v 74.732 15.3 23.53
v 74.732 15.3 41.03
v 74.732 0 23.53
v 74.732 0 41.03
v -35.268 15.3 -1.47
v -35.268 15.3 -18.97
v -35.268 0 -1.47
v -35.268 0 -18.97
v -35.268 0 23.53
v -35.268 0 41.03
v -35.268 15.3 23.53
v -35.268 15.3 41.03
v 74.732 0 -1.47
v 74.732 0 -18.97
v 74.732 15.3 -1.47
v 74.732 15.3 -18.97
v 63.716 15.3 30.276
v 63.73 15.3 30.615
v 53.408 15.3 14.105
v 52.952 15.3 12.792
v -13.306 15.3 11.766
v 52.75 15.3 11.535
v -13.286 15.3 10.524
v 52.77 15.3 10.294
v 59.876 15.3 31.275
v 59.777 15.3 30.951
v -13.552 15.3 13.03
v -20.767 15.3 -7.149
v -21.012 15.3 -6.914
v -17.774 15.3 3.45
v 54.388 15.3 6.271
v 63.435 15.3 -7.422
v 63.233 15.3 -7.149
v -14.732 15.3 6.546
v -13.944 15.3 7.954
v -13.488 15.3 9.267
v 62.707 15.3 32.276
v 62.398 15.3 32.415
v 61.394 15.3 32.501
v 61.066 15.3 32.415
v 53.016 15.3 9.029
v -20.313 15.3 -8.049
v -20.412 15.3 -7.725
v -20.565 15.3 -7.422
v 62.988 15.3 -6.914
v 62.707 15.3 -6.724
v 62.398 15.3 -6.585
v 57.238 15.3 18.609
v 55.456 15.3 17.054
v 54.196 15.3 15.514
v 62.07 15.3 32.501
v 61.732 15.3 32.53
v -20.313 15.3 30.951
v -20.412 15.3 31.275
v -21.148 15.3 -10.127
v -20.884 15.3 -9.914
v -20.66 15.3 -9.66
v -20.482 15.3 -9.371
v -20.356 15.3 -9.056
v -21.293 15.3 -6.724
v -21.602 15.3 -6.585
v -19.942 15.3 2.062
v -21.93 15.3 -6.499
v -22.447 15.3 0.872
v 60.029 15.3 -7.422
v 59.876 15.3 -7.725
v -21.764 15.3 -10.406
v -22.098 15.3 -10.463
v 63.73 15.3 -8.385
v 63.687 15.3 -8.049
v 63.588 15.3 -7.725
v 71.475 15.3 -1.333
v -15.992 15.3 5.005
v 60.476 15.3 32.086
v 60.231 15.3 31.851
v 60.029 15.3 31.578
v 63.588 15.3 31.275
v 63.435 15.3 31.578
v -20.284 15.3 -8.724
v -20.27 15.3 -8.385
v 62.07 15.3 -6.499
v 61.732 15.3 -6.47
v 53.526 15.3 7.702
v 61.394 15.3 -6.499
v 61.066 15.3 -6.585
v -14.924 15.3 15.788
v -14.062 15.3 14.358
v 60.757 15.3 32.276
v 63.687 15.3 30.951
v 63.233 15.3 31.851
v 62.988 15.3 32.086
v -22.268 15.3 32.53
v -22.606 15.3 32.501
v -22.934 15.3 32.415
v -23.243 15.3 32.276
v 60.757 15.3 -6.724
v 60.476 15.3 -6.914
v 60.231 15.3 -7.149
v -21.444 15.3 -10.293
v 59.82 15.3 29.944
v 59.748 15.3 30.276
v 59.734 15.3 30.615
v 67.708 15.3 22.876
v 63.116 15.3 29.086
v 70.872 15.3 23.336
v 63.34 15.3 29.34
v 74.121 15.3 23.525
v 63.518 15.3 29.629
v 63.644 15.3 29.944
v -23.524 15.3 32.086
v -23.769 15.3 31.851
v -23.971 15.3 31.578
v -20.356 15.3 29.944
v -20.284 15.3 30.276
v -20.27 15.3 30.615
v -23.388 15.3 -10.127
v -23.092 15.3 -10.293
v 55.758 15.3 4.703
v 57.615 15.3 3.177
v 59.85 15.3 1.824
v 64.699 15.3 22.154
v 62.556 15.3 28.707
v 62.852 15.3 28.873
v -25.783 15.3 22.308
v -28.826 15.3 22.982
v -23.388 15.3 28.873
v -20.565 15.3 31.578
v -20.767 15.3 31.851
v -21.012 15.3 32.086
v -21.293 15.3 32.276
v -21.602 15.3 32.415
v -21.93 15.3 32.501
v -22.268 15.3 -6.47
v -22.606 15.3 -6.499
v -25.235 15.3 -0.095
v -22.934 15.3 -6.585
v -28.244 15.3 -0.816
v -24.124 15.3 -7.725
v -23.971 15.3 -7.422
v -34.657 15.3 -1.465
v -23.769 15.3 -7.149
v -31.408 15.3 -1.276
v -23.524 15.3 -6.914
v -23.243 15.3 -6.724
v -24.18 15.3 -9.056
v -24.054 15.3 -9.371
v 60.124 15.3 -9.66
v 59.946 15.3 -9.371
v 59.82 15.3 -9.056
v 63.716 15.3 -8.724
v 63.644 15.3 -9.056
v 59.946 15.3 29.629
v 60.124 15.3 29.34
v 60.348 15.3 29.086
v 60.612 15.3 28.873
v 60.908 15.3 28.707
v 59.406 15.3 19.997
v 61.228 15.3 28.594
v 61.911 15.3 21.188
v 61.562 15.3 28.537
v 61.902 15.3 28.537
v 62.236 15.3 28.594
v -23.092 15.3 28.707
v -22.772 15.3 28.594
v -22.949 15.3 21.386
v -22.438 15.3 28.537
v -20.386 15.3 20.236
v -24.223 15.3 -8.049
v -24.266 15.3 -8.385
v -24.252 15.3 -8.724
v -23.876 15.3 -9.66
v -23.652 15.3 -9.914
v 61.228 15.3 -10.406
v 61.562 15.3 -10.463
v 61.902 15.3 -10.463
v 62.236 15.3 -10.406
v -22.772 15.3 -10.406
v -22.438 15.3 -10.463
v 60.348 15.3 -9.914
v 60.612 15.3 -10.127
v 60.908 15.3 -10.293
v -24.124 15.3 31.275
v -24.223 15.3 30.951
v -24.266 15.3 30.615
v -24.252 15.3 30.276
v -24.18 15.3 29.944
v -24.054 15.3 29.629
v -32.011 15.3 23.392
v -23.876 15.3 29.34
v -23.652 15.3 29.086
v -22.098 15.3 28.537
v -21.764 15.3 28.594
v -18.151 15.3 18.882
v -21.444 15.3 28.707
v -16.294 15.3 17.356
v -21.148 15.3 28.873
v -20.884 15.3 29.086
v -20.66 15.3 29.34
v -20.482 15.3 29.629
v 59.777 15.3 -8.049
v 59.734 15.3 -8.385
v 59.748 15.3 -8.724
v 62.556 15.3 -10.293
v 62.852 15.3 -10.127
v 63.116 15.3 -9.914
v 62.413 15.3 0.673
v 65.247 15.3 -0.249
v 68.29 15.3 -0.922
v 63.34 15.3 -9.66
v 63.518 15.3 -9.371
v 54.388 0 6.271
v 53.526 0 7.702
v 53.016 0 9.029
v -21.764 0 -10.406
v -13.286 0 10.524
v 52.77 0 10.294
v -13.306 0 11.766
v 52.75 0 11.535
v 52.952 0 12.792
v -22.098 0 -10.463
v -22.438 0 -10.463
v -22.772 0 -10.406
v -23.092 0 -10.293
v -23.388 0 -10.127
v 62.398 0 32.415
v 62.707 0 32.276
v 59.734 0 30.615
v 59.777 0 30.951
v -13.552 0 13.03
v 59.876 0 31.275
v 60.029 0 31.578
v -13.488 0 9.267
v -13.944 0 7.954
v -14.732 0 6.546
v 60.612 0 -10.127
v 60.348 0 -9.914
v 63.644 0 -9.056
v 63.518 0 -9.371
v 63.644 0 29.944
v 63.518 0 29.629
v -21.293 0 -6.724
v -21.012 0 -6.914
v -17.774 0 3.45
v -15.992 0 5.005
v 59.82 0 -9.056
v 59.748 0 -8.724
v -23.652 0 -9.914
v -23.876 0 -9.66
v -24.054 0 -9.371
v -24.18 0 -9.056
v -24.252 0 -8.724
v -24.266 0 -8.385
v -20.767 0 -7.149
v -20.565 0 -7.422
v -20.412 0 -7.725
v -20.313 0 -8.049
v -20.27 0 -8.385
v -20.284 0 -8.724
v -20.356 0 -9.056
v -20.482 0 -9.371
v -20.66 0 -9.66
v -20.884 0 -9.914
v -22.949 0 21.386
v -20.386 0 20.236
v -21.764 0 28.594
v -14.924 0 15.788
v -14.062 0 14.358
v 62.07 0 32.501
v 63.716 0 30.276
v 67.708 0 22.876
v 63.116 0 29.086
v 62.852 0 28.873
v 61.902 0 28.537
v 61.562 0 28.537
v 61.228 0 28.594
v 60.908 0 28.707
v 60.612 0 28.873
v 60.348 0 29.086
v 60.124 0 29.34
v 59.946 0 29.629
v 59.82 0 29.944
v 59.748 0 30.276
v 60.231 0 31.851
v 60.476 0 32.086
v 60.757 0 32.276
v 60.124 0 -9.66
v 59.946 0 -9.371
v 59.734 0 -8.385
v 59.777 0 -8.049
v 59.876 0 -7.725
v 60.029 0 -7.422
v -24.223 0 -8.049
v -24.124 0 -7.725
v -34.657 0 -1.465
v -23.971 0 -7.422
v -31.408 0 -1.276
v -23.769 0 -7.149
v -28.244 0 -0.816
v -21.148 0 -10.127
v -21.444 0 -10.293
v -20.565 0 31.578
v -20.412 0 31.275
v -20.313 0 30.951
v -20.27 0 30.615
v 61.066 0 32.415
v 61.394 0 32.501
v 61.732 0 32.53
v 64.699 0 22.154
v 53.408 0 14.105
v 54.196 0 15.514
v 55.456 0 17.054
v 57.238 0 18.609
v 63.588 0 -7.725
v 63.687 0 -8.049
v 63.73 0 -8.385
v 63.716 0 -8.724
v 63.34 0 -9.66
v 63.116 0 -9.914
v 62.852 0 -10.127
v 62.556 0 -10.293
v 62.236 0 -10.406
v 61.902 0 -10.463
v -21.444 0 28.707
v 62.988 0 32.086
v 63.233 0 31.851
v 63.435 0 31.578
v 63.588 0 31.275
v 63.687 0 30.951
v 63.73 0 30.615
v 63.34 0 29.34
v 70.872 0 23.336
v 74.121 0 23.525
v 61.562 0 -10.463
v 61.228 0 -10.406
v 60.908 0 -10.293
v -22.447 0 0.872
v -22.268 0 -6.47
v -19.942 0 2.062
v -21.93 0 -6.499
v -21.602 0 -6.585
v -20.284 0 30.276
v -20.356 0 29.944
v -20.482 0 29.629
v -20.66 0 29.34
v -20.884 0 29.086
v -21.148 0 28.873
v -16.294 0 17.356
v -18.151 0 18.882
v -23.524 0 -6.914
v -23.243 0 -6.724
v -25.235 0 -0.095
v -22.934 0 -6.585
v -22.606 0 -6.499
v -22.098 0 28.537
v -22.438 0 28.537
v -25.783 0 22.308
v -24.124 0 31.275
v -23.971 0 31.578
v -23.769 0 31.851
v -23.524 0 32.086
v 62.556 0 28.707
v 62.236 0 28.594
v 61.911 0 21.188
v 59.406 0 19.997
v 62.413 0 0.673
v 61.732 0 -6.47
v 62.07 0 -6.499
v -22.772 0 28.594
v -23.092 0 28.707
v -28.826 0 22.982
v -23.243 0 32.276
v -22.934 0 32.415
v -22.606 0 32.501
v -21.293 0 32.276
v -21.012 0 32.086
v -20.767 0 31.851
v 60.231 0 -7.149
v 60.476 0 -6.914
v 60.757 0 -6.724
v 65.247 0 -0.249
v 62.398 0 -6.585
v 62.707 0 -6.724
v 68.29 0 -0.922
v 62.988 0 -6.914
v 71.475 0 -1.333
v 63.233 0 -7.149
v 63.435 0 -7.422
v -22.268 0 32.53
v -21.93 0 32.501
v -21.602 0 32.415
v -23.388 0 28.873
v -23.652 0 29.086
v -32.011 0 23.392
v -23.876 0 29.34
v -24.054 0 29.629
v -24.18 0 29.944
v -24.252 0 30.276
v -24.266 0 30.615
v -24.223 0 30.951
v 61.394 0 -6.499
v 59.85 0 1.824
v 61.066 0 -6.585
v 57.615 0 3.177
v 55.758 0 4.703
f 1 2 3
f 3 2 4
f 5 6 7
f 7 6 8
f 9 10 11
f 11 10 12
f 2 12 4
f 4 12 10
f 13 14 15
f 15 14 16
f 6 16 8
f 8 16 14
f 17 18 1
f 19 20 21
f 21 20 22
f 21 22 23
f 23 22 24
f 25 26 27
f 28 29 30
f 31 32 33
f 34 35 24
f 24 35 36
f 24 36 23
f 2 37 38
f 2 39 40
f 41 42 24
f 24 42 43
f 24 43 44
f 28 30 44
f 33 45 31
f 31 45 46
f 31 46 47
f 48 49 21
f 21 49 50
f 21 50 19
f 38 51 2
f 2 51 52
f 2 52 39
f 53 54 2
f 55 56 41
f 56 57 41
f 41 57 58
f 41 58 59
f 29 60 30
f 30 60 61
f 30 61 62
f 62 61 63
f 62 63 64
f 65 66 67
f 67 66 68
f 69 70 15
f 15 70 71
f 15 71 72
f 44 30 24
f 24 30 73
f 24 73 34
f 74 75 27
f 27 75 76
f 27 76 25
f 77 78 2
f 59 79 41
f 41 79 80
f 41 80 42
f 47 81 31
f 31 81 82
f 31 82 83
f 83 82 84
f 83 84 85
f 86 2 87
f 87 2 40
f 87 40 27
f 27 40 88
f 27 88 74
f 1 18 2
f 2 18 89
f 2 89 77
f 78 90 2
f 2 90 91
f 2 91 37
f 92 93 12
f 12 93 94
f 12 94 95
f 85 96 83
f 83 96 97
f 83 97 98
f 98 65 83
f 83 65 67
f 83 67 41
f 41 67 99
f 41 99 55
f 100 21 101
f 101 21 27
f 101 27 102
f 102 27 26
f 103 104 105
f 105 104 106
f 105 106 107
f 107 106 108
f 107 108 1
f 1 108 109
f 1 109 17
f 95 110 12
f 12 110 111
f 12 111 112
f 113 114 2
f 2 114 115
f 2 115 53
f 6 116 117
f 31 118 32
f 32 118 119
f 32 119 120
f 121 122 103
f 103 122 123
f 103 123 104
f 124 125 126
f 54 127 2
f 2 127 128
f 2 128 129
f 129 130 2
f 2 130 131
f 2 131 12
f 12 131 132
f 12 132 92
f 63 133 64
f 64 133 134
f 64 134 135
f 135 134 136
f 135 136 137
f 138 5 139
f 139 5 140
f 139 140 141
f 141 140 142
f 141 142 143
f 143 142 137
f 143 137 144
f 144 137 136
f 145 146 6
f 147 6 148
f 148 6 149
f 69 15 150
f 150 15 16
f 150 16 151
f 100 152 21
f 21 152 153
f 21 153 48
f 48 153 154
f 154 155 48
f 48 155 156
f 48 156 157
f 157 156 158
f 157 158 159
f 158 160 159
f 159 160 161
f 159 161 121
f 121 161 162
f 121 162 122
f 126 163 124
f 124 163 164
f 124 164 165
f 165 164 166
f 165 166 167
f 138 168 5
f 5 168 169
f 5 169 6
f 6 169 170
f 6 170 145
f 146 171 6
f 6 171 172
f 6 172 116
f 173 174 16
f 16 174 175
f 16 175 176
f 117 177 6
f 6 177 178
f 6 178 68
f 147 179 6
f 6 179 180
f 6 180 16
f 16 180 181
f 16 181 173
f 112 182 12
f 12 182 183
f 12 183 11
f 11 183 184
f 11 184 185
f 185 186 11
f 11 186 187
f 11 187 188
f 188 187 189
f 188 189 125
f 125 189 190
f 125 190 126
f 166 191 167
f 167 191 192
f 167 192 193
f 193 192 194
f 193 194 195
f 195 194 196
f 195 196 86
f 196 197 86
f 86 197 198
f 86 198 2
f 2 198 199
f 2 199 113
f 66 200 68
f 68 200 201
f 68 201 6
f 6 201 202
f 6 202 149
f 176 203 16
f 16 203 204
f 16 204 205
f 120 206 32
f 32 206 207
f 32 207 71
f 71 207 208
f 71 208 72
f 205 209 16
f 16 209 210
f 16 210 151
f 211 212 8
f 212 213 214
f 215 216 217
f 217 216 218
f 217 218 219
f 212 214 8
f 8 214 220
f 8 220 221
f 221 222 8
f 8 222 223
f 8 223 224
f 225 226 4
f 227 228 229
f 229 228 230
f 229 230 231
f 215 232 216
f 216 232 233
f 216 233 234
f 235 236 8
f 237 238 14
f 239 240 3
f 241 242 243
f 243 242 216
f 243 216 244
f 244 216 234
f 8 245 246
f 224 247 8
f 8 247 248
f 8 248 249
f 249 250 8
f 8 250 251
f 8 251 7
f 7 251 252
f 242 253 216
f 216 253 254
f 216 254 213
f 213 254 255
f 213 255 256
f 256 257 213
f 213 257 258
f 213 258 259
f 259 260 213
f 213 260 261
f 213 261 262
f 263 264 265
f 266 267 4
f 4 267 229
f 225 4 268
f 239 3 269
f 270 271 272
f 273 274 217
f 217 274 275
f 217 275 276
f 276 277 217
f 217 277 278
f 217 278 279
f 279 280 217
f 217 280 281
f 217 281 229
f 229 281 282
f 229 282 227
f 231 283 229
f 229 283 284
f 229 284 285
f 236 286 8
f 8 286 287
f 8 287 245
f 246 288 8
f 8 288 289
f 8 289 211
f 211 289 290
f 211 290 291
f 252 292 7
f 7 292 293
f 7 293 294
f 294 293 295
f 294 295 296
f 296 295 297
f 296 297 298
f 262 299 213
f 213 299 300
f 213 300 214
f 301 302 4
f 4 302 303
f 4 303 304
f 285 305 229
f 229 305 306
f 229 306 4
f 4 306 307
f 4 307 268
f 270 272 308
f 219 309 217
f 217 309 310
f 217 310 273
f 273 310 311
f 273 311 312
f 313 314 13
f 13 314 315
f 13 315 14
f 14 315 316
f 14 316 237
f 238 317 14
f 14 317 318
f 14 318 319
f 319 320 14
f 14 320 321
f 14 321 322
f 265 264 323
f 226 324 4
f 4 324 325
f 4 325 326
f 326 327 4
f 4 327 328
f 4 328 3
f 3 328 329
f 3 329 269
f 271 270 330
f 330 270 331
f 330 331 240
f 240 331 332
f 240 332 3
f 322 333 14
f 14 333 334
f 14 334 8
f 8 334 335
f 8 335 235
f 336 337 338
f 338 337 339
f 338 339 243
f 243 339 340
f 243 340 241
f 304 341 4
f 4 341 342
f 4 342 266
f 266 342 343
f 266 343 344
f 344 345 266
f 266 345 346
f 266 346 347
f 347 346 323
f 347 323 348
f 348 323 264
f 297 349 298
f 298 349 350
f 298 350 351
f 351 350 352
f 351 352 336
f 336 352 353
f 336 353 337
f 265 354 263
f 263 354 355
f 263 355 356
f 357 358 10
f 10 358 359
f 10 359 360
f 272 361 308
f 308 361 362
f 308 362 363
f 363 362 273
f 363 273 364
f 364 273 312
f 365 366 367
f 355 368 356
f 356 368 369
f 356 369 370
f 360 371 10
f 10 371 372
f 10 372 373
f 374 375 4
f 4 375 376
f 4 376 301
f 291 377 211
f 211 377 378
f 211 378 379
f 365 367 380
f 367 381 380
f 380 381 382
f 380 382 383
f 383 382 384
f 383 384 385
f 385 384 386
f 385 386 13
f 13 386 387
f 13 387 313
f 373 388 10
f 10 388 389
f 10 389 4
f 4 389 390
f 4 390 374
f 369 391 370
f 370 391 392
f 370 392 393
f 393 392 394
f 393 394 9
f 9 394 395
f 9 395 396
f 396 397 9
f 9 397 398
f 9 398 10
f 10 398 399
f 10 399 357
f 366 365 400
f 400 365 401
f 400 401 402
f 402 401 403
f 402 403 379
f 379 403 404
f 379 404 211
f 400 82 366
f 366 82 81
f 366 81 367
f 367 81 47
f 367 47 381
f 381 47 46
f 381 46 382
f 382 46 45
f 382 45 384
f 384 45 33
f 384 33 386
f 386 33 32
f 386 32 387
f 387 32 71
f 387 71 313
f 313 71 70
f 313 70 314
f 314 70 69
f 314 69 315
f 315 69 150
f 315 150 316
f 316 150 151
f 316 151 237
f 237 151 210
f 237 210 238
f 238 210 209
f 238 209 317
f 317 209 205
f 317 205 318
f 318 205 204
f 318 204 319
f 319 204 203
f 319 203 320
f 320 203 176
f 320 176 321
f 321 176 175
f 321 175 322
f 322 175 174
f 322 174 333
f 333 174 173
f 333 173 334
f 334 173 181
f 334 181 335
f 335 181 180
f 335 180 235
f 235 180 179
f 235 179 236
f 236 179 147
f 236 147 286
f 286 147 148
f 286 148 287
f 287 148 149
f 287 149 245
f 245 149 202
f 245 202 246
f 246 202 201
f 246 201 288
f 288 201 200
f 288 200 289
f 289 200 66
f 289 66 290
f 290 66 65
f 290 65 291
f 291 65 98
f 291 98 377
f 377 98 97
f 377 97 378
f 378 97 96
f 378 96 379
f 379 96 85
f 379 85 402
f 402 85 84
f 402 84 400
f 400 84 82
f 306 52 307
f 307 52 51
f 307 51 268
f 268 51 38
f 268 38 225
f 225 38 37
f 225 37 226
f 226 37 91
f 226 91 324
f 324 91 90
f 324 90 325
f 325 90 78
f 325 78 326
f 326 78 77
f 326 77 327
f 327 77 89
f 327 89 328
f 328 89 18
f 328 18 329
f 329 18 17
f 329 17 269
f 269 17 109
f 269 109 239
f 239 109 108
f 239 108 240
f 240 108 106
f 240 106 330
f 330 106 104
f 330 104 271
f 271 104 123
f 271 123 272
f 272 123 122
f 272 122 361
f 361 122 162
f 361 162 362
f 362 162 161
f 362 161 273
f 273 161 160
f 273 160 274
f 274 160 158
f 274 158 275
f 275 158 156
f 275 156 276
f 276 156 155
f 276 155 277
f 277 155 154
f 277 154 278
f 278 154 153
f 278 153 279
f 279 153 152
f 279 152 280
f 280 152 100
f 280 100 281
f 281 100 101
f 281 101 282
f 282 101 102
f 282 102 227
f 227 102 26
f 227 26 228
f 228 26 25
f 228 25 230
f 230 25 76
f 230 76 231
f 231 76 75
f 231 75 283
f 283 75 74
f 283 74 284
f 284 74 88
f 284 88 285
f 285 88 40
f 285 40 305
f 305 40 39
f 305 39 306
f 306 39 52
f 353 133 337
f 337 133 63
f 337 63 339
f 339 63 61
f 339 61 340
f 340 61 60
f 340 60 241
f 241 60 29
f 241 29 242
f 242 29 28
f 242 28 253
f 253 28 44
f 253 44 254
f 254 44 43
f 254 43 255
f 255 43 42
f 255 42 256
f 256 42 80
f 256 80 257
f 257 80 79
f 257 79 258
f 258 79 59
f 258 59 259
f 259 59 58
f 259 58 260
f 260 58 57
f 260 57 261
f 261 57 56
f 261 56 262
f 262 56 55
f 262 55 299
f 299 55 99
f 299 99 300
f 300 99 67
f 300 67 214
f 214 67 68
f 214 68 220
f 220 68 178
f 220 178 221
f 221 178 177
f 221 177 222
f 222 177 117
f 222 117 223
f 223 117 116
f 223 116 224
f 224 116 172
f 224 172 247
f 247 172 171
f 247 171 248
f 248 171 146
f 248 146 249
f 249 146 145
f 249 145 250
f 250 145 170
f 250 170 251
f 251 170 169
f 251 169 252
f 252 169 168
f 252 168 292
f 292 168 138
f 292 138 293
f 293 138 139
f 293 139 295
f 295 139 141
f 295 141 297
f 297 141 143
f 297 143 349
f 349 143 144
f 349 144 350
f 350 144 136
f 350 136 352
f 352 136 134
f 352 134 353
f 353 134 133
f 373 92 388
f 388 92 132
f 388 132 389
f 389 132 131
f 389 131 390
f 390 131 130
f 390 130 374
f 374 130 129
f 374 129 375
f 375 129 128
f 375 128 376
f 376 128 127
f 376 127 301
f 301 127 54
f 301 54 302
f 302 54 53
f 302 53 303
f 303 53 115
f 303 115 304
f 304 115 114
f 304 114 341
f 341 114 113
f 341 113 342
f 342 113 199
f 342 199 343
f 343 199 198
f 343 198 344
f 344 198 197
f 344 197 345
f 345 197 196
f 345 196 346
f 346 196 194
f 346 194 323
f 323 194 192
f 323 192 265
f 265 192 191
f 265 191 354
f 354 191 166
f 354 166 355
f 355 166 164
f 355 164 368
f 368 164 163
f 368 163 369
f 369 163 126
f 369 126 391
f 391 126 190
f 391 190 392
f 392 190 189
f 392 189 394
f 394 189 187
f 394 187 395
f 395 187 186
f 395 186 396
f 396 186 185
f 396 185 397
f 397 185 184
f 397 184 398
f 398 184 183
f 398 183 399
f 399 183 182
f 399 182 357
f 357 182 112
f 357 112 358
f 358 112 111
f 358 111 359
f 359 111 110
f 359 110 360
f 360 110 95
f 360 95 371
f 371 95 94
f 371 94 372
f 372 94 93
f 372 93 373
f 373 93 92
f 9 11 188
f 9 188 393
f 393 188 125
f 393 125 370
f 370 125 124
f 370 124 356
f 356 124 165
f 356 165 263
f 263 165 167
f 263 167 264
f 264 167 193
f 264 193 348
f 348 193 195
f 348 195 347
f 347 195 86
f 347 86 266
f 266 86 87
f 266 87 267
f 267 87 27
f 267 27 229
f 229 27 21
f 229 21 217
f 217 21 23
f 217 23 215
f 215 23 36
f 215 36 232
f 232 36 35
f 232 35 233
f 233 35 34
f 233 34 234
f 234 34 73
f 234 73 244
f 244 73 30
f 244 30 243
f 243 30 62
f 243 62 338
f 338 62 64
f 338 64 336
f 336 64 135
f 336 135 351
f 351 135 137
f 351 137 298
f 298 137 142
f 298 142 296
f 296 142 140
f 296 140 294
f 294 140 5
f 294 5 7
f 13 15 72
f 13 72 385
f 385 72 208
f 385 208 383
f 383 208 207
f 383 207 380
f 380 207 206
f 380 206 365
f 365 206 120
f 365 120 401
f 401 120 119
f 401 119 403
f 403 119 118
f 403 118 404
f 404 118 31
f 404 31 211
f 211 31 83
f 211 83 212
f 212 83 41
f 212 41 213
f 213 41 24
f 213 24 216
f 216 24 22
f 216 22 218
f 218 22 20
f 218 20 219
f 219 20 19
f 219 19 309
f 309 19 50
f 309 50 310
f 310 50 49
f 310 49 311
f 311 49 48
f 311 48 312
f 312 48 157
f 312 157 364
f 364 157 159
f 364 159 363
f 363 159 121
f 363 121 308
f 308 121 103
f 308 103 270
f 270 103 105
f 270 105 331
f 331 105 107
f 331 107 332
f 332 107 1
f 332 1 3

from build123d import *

# Parameters (mm, degrees)
ESQUISSE1_W             = 110
ESQUISSE1_H             = 60
BOSS_EXTRU_1_DEPTH      = 15.3
ESQUISSE2_R             = 2
ENL_V_MAT_EXTRU_2_DEPTH = 87.616374477
ESQUISSE5_RX            = 22
ESQUISSE5_RY            = 12.5
ENL_V_MAT_EXTRU_4_DEPTH = 87.616374477


with BuildPart() as part:
    # Esquisse1 → Boss.-Extru.1 (new body)
    with BuildSketch(Plane(origin=(0, 0, 0), x_dir=(1, 0, 0), z_dir=(0, 1, 0))):
        with Locations((19.731995919, -11.029685758)):
            Rectangle(ESQUISSE1_W, ESQUISSE1_H)
    extrude(amount=BOSS_EXTRU_1_DEPTH)

    # Esquisse2 → Enlèv. mat.-Extru.2 (cut, through all)
    with BuildSketch(Plane(origin=(0, 15.3, 0), x_dir=(1, 0, 0), z_dir=(0, 1, 0))):
        with Locations(Location((61.731995919, 8.470314242, 0), (0, 0, 270))):
            Circle(ESQUISSE2_R)
        with Locations(Location((61.731995919, -30.529685758, 0), (0, 0, 270))):
            Circle(ESQUISSE2_R)
        with Locations(Location((-22.268004081, 8.470314242, 0), (0, 0, 270))):
            Circle(ESQUISSE2_R)
        with Locations(Location((-22.268004081, -30.529685758, 0), (0, 0, 270))):
            Circle(ESQUISSE2_R)
    extrude(amount=-ENL_V_MAT_EXTRU_2_DEPTH, mode=Mode.SUBTRACT)

    # Esquisse5 → Enlèv. mat.-Extru.4 (cut, through all)
    with BuildSketch(Plane(origin=(0, 15.3, 0), x_dir=(1, 0, 0), z_dir=(0, 1, 0))):
        with Locations((-35.268004081, -11.029685758)):
            Ellipse(ESQUISSE5_RX, ESQUISSE5_RY)
        with Locations(Location((74.731995919, -11.029685758), (0, 0, 180))):
            Ellipse(ESQUISSE5_RX, ESQUISSE5_RY)
    extrude(amount=-ENL_V_MAT_EXTRU_4_DEPTH, mode=Mode.SUBTRACT)


solid = part.part
